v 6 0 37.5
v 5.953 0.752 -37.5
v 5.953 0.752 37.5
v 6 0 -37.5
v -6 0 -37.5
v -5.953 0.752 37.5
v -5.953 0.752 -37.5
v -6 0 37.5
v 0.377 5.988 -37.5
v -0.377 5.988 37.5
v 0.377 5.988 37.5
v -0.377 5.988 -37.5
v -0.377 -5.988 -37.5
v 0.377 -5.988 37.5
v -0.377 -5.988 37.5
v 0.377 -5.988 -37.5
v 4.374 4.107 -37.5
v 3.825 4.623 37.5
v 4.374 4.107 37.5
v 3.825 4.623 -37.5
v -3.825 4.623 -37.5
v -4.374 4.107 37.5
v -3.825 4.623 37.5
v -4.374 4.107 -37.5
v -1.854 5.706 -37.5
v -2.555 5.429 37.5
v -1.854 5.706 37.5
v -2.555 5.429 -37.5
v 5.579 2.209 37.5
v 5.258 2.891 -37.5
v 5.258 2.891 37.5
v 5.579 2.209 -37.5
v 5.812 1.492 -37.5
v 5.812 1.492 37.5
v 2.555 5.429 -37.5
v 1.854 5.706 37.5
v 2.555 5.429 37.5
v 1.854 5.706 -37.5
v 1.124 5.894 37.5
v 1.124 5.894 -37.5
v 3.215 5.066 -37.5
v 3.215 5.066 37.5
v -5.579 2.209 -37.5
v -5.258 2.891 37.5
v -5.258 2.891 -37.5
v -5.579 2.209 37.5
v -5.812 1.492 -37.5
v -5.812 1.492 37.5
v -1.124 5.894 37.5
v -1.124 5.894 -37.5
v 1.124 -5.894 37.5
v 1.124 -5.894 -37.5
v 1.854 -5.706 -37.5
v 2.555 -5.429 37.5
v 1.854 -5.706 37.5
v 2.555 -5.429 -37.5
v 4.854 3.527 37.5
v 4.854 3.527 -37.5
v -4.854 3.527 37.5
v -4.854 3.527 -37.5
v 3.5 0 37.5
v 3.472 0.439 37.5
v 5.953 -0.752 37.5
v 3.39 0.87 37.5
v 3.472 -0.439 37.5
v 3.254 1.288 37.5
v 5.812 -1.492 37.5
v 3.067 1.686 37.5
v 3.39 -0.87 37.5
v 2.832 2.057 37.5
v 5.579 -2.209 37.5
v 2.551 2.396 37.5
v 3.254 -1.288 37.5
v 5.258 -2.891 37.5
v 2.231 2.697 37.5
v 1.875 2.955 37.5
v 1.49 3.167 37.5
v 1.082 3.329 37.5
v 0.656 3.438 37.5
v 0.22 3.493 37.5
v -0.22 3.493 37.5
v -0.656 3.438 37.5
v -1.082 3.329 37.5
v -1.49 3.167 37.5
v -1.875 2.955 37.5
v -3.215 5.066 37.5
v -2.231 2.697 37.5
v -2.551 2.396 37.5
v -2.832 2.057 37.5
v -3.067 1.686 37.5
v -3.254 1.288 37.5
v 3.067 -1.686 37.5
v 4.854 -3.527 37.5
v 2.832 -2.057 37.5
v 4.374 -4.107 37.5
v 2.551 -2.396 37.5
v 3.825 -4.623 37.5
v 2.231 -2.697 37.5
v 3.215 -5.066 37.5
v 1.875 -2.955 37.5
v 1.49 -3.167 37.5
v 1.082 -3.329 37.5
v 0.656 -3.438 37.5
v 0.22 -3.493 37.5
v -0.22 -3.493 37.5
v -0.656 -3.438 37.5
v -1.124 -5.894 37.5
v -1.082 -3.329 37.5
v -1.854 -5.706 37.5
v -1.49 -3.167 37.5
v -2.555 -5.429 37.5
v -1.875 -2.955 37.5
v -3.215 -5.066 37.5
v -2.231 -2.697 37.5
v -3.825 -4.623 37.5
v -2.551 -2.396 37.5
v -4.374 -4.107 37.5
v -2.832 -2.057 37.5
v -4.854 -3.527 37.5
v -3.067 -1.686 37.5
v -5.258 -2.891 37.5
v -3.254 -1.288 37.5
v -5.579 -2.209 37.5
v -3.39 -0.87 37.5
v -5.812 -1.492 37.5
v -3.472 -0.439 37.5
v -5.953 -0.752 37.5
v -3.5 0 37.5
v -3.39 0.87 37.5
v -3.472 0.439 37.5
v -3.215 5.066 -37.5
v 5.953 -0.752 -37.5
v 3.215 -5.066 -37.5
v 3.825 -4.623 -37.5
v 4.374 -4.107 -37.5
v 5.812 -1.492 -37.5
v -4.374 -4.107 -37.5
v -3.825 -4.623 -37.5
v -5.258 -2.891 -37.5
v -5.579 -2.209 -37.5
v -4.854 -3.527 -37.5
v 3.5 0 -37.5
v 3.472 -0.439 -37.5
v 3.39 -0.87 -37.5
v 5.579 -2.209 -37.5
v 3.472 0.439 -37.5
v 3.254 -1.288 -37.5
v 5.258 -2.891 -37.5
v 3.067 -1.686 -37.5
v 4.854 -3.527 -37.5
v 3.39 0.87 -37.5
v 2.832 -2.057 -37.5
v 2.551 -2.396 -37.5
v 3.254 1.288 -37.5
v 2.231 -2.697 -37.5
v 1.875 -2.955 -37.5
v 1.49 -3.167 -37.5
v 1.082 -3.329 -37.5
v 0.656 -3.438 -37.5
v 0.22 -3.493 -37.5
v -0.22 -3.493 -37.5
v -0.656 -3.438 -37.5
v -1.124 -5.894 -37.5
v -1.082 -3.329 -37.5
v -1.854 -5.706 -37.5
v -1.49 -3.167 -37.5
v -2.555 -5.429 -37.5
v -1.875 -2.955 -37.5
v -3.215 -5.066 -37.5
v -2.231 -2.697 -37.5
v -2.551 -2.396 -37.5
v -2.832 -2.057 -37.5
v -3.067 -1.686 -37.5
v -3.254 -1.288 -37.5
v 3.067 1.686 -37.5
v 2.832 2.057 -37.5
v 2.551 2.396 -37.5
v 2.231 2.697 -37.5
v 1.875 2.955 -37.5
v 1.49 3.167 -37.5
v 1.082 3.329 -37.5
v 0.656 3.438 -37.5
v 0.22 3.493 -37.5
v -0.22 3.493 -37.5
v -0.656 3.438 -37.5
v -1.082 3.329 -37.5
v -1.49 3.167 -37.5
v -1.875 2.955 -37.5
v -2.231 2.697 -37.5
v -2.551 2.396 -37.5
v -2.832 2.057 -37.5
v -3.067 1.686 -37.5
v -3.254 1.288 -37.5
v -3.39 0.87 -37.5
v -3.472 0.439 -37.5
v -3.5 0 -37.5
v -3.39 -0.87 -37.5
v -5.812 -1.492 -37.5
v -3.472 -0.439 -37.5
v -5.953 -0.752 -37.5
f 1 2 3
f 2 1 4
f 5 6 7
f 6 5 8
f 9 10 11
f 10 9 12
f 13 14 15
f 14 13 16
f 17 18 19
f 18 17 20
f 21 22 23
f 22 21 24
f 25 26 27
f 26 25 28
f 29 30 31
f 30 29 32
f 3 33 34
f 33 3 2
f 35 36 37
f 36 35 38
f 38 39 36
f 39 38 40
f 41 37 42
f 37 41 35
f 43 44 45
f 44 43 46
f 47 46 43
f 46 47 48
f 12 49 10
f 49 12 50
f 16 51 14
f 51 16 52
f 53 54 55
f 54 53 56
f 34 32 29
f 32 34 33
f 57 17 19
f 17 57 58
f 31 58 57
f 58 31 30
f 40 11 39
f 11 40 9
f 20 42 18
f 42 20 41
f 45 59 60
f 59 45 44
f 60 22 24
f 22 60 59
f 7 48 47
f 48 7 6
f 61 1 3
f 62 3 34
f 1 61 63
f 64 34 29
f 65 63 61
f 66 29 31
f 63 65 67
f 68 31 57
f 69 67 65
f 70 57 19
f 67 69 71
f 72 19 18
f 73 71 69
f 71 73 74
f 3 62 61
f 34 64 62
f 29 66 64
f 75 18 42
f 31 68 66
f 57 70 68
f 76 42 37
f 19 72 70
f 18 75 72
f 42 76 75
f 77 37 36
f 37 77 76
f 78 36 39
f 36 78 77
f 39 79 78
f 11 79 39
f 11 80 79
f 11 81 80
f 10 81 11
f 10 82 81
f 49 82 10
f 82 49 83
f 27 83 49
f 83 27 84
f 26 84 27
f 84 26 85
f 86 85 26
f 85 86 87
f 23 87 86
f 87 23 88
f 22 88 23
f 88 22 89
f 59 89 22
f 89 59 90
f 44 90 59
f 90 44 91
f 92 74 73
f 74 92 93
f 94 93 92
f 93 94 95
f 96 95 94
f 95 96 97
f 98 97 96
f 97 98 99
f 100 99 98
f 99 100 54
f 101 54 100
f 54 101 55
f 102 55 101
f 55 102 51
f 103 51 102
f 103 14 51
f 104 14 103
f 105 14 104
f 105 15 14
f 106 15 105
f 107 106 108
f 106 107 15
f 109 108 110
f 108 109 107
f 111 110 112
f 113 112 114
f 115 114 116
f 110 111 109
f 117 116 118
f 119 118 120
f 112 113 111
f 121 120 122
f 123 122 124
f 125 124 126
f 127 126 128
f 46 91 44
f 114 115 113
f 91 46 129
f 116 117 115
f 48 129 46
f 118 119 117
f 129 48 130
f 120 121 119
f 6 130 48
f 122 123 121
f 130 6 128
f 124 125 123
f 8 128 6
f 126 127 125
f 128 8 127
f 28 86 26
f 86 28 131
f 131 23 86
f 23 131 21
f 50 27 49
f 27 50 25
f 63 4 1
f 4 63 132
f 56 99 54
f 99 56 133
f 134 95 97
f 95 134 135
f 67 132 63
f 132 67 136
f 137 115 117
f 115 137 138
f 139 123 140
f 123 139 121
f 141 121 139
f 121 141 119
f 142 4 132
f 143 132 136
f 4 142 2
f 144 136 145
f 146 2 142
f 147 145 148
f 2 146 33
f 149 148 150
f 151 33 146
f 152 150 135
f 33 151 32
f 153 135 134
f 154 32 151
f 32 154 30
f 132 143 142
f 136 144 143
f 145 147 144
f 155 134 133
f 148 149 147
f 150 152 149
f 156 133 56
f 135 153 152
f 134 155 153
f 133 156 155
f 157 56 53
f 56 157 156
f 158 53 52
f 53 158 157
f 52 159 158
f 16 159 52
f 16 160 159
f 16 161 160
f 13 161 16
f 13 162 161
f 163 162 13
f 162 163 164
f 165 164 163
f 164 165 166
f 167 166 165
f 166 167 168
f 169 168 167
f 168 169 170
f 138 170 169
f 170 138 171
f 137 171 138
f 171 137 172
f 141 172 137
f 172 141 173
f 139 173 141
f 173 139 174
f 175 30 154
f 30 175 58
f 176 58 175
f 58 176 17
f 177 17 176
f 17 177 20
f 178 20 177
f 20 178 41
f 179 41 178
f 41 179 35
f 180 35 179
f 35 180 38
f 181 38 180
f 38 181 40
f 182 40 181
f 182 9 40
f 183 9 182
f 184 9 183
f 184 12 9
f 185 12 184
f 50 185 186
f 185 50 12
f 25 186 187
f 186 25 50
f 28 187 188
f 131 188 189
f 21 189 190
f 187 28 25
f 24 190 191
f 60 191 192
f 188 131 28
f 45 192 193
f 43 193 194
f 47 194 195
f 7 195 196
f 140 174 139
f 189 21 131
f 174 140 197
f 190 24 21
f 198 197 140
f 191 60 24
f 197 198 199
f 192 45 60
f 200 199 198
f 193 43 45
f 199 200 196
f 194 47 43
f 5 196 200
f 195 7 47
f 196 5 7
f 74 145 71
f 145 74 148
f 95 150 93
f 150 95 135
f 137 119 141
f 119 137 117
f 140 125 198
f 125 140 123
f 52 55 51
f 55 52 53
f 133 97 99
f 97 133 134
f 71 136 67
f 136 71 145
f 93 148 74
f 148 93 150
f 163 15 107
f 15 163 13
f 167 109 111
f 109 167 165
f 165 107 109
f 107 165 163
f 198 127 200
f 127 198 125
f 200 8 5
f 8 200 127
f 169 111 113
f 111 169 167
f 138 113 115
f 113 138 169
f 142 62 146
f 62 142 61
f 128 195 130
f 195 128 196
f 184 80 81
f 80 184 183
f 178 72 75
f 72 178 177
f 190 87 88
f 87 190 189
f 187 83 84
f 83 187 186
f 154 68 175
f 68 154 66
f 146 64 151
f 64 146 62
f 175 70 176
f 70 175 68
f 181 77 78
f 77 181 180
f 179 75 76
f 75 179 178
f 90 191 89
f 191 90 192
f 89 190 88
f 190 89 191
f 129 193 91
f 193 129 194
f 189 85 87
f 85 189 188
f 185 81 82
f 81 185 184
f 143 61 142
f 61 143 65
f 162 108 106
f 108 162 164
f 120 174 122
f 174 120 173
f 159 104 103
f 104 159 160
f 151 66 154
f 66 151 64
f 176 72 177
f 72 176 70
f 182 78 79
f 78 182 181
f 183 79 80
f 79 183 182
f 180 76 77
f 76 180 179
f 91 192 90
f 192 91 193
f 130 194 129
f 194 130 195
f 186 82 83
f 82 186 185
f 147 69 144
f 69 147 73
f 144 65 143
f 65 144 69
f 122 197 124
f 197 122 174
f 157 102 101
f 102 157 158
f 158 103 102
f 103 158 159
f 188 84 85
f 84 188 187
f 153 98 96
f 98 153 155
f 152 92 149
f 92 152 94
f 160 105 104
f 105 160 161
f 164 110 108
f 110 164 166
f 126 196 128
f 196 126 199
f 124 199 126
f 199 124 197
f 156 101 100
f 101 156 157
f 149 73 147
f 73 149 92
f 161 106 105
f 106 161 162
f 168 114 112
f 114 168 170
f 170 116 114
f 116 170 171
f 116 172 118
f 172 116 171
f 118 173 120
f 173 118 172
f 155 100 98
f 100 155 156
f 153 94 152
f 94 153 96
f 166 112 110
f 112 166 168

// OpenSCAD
$fn = 50;


difference() {
	union() {
		translate(v = [0, 0, -37.5000000000]) {
			cylinder(h = 75, r = 6.0000000000);
		}
	}
	union() {
		translate(v = [0, 0, -100.0000000000]) {
			cylinder(h = 200, r = 3.5000000000);
		}
	}
}
